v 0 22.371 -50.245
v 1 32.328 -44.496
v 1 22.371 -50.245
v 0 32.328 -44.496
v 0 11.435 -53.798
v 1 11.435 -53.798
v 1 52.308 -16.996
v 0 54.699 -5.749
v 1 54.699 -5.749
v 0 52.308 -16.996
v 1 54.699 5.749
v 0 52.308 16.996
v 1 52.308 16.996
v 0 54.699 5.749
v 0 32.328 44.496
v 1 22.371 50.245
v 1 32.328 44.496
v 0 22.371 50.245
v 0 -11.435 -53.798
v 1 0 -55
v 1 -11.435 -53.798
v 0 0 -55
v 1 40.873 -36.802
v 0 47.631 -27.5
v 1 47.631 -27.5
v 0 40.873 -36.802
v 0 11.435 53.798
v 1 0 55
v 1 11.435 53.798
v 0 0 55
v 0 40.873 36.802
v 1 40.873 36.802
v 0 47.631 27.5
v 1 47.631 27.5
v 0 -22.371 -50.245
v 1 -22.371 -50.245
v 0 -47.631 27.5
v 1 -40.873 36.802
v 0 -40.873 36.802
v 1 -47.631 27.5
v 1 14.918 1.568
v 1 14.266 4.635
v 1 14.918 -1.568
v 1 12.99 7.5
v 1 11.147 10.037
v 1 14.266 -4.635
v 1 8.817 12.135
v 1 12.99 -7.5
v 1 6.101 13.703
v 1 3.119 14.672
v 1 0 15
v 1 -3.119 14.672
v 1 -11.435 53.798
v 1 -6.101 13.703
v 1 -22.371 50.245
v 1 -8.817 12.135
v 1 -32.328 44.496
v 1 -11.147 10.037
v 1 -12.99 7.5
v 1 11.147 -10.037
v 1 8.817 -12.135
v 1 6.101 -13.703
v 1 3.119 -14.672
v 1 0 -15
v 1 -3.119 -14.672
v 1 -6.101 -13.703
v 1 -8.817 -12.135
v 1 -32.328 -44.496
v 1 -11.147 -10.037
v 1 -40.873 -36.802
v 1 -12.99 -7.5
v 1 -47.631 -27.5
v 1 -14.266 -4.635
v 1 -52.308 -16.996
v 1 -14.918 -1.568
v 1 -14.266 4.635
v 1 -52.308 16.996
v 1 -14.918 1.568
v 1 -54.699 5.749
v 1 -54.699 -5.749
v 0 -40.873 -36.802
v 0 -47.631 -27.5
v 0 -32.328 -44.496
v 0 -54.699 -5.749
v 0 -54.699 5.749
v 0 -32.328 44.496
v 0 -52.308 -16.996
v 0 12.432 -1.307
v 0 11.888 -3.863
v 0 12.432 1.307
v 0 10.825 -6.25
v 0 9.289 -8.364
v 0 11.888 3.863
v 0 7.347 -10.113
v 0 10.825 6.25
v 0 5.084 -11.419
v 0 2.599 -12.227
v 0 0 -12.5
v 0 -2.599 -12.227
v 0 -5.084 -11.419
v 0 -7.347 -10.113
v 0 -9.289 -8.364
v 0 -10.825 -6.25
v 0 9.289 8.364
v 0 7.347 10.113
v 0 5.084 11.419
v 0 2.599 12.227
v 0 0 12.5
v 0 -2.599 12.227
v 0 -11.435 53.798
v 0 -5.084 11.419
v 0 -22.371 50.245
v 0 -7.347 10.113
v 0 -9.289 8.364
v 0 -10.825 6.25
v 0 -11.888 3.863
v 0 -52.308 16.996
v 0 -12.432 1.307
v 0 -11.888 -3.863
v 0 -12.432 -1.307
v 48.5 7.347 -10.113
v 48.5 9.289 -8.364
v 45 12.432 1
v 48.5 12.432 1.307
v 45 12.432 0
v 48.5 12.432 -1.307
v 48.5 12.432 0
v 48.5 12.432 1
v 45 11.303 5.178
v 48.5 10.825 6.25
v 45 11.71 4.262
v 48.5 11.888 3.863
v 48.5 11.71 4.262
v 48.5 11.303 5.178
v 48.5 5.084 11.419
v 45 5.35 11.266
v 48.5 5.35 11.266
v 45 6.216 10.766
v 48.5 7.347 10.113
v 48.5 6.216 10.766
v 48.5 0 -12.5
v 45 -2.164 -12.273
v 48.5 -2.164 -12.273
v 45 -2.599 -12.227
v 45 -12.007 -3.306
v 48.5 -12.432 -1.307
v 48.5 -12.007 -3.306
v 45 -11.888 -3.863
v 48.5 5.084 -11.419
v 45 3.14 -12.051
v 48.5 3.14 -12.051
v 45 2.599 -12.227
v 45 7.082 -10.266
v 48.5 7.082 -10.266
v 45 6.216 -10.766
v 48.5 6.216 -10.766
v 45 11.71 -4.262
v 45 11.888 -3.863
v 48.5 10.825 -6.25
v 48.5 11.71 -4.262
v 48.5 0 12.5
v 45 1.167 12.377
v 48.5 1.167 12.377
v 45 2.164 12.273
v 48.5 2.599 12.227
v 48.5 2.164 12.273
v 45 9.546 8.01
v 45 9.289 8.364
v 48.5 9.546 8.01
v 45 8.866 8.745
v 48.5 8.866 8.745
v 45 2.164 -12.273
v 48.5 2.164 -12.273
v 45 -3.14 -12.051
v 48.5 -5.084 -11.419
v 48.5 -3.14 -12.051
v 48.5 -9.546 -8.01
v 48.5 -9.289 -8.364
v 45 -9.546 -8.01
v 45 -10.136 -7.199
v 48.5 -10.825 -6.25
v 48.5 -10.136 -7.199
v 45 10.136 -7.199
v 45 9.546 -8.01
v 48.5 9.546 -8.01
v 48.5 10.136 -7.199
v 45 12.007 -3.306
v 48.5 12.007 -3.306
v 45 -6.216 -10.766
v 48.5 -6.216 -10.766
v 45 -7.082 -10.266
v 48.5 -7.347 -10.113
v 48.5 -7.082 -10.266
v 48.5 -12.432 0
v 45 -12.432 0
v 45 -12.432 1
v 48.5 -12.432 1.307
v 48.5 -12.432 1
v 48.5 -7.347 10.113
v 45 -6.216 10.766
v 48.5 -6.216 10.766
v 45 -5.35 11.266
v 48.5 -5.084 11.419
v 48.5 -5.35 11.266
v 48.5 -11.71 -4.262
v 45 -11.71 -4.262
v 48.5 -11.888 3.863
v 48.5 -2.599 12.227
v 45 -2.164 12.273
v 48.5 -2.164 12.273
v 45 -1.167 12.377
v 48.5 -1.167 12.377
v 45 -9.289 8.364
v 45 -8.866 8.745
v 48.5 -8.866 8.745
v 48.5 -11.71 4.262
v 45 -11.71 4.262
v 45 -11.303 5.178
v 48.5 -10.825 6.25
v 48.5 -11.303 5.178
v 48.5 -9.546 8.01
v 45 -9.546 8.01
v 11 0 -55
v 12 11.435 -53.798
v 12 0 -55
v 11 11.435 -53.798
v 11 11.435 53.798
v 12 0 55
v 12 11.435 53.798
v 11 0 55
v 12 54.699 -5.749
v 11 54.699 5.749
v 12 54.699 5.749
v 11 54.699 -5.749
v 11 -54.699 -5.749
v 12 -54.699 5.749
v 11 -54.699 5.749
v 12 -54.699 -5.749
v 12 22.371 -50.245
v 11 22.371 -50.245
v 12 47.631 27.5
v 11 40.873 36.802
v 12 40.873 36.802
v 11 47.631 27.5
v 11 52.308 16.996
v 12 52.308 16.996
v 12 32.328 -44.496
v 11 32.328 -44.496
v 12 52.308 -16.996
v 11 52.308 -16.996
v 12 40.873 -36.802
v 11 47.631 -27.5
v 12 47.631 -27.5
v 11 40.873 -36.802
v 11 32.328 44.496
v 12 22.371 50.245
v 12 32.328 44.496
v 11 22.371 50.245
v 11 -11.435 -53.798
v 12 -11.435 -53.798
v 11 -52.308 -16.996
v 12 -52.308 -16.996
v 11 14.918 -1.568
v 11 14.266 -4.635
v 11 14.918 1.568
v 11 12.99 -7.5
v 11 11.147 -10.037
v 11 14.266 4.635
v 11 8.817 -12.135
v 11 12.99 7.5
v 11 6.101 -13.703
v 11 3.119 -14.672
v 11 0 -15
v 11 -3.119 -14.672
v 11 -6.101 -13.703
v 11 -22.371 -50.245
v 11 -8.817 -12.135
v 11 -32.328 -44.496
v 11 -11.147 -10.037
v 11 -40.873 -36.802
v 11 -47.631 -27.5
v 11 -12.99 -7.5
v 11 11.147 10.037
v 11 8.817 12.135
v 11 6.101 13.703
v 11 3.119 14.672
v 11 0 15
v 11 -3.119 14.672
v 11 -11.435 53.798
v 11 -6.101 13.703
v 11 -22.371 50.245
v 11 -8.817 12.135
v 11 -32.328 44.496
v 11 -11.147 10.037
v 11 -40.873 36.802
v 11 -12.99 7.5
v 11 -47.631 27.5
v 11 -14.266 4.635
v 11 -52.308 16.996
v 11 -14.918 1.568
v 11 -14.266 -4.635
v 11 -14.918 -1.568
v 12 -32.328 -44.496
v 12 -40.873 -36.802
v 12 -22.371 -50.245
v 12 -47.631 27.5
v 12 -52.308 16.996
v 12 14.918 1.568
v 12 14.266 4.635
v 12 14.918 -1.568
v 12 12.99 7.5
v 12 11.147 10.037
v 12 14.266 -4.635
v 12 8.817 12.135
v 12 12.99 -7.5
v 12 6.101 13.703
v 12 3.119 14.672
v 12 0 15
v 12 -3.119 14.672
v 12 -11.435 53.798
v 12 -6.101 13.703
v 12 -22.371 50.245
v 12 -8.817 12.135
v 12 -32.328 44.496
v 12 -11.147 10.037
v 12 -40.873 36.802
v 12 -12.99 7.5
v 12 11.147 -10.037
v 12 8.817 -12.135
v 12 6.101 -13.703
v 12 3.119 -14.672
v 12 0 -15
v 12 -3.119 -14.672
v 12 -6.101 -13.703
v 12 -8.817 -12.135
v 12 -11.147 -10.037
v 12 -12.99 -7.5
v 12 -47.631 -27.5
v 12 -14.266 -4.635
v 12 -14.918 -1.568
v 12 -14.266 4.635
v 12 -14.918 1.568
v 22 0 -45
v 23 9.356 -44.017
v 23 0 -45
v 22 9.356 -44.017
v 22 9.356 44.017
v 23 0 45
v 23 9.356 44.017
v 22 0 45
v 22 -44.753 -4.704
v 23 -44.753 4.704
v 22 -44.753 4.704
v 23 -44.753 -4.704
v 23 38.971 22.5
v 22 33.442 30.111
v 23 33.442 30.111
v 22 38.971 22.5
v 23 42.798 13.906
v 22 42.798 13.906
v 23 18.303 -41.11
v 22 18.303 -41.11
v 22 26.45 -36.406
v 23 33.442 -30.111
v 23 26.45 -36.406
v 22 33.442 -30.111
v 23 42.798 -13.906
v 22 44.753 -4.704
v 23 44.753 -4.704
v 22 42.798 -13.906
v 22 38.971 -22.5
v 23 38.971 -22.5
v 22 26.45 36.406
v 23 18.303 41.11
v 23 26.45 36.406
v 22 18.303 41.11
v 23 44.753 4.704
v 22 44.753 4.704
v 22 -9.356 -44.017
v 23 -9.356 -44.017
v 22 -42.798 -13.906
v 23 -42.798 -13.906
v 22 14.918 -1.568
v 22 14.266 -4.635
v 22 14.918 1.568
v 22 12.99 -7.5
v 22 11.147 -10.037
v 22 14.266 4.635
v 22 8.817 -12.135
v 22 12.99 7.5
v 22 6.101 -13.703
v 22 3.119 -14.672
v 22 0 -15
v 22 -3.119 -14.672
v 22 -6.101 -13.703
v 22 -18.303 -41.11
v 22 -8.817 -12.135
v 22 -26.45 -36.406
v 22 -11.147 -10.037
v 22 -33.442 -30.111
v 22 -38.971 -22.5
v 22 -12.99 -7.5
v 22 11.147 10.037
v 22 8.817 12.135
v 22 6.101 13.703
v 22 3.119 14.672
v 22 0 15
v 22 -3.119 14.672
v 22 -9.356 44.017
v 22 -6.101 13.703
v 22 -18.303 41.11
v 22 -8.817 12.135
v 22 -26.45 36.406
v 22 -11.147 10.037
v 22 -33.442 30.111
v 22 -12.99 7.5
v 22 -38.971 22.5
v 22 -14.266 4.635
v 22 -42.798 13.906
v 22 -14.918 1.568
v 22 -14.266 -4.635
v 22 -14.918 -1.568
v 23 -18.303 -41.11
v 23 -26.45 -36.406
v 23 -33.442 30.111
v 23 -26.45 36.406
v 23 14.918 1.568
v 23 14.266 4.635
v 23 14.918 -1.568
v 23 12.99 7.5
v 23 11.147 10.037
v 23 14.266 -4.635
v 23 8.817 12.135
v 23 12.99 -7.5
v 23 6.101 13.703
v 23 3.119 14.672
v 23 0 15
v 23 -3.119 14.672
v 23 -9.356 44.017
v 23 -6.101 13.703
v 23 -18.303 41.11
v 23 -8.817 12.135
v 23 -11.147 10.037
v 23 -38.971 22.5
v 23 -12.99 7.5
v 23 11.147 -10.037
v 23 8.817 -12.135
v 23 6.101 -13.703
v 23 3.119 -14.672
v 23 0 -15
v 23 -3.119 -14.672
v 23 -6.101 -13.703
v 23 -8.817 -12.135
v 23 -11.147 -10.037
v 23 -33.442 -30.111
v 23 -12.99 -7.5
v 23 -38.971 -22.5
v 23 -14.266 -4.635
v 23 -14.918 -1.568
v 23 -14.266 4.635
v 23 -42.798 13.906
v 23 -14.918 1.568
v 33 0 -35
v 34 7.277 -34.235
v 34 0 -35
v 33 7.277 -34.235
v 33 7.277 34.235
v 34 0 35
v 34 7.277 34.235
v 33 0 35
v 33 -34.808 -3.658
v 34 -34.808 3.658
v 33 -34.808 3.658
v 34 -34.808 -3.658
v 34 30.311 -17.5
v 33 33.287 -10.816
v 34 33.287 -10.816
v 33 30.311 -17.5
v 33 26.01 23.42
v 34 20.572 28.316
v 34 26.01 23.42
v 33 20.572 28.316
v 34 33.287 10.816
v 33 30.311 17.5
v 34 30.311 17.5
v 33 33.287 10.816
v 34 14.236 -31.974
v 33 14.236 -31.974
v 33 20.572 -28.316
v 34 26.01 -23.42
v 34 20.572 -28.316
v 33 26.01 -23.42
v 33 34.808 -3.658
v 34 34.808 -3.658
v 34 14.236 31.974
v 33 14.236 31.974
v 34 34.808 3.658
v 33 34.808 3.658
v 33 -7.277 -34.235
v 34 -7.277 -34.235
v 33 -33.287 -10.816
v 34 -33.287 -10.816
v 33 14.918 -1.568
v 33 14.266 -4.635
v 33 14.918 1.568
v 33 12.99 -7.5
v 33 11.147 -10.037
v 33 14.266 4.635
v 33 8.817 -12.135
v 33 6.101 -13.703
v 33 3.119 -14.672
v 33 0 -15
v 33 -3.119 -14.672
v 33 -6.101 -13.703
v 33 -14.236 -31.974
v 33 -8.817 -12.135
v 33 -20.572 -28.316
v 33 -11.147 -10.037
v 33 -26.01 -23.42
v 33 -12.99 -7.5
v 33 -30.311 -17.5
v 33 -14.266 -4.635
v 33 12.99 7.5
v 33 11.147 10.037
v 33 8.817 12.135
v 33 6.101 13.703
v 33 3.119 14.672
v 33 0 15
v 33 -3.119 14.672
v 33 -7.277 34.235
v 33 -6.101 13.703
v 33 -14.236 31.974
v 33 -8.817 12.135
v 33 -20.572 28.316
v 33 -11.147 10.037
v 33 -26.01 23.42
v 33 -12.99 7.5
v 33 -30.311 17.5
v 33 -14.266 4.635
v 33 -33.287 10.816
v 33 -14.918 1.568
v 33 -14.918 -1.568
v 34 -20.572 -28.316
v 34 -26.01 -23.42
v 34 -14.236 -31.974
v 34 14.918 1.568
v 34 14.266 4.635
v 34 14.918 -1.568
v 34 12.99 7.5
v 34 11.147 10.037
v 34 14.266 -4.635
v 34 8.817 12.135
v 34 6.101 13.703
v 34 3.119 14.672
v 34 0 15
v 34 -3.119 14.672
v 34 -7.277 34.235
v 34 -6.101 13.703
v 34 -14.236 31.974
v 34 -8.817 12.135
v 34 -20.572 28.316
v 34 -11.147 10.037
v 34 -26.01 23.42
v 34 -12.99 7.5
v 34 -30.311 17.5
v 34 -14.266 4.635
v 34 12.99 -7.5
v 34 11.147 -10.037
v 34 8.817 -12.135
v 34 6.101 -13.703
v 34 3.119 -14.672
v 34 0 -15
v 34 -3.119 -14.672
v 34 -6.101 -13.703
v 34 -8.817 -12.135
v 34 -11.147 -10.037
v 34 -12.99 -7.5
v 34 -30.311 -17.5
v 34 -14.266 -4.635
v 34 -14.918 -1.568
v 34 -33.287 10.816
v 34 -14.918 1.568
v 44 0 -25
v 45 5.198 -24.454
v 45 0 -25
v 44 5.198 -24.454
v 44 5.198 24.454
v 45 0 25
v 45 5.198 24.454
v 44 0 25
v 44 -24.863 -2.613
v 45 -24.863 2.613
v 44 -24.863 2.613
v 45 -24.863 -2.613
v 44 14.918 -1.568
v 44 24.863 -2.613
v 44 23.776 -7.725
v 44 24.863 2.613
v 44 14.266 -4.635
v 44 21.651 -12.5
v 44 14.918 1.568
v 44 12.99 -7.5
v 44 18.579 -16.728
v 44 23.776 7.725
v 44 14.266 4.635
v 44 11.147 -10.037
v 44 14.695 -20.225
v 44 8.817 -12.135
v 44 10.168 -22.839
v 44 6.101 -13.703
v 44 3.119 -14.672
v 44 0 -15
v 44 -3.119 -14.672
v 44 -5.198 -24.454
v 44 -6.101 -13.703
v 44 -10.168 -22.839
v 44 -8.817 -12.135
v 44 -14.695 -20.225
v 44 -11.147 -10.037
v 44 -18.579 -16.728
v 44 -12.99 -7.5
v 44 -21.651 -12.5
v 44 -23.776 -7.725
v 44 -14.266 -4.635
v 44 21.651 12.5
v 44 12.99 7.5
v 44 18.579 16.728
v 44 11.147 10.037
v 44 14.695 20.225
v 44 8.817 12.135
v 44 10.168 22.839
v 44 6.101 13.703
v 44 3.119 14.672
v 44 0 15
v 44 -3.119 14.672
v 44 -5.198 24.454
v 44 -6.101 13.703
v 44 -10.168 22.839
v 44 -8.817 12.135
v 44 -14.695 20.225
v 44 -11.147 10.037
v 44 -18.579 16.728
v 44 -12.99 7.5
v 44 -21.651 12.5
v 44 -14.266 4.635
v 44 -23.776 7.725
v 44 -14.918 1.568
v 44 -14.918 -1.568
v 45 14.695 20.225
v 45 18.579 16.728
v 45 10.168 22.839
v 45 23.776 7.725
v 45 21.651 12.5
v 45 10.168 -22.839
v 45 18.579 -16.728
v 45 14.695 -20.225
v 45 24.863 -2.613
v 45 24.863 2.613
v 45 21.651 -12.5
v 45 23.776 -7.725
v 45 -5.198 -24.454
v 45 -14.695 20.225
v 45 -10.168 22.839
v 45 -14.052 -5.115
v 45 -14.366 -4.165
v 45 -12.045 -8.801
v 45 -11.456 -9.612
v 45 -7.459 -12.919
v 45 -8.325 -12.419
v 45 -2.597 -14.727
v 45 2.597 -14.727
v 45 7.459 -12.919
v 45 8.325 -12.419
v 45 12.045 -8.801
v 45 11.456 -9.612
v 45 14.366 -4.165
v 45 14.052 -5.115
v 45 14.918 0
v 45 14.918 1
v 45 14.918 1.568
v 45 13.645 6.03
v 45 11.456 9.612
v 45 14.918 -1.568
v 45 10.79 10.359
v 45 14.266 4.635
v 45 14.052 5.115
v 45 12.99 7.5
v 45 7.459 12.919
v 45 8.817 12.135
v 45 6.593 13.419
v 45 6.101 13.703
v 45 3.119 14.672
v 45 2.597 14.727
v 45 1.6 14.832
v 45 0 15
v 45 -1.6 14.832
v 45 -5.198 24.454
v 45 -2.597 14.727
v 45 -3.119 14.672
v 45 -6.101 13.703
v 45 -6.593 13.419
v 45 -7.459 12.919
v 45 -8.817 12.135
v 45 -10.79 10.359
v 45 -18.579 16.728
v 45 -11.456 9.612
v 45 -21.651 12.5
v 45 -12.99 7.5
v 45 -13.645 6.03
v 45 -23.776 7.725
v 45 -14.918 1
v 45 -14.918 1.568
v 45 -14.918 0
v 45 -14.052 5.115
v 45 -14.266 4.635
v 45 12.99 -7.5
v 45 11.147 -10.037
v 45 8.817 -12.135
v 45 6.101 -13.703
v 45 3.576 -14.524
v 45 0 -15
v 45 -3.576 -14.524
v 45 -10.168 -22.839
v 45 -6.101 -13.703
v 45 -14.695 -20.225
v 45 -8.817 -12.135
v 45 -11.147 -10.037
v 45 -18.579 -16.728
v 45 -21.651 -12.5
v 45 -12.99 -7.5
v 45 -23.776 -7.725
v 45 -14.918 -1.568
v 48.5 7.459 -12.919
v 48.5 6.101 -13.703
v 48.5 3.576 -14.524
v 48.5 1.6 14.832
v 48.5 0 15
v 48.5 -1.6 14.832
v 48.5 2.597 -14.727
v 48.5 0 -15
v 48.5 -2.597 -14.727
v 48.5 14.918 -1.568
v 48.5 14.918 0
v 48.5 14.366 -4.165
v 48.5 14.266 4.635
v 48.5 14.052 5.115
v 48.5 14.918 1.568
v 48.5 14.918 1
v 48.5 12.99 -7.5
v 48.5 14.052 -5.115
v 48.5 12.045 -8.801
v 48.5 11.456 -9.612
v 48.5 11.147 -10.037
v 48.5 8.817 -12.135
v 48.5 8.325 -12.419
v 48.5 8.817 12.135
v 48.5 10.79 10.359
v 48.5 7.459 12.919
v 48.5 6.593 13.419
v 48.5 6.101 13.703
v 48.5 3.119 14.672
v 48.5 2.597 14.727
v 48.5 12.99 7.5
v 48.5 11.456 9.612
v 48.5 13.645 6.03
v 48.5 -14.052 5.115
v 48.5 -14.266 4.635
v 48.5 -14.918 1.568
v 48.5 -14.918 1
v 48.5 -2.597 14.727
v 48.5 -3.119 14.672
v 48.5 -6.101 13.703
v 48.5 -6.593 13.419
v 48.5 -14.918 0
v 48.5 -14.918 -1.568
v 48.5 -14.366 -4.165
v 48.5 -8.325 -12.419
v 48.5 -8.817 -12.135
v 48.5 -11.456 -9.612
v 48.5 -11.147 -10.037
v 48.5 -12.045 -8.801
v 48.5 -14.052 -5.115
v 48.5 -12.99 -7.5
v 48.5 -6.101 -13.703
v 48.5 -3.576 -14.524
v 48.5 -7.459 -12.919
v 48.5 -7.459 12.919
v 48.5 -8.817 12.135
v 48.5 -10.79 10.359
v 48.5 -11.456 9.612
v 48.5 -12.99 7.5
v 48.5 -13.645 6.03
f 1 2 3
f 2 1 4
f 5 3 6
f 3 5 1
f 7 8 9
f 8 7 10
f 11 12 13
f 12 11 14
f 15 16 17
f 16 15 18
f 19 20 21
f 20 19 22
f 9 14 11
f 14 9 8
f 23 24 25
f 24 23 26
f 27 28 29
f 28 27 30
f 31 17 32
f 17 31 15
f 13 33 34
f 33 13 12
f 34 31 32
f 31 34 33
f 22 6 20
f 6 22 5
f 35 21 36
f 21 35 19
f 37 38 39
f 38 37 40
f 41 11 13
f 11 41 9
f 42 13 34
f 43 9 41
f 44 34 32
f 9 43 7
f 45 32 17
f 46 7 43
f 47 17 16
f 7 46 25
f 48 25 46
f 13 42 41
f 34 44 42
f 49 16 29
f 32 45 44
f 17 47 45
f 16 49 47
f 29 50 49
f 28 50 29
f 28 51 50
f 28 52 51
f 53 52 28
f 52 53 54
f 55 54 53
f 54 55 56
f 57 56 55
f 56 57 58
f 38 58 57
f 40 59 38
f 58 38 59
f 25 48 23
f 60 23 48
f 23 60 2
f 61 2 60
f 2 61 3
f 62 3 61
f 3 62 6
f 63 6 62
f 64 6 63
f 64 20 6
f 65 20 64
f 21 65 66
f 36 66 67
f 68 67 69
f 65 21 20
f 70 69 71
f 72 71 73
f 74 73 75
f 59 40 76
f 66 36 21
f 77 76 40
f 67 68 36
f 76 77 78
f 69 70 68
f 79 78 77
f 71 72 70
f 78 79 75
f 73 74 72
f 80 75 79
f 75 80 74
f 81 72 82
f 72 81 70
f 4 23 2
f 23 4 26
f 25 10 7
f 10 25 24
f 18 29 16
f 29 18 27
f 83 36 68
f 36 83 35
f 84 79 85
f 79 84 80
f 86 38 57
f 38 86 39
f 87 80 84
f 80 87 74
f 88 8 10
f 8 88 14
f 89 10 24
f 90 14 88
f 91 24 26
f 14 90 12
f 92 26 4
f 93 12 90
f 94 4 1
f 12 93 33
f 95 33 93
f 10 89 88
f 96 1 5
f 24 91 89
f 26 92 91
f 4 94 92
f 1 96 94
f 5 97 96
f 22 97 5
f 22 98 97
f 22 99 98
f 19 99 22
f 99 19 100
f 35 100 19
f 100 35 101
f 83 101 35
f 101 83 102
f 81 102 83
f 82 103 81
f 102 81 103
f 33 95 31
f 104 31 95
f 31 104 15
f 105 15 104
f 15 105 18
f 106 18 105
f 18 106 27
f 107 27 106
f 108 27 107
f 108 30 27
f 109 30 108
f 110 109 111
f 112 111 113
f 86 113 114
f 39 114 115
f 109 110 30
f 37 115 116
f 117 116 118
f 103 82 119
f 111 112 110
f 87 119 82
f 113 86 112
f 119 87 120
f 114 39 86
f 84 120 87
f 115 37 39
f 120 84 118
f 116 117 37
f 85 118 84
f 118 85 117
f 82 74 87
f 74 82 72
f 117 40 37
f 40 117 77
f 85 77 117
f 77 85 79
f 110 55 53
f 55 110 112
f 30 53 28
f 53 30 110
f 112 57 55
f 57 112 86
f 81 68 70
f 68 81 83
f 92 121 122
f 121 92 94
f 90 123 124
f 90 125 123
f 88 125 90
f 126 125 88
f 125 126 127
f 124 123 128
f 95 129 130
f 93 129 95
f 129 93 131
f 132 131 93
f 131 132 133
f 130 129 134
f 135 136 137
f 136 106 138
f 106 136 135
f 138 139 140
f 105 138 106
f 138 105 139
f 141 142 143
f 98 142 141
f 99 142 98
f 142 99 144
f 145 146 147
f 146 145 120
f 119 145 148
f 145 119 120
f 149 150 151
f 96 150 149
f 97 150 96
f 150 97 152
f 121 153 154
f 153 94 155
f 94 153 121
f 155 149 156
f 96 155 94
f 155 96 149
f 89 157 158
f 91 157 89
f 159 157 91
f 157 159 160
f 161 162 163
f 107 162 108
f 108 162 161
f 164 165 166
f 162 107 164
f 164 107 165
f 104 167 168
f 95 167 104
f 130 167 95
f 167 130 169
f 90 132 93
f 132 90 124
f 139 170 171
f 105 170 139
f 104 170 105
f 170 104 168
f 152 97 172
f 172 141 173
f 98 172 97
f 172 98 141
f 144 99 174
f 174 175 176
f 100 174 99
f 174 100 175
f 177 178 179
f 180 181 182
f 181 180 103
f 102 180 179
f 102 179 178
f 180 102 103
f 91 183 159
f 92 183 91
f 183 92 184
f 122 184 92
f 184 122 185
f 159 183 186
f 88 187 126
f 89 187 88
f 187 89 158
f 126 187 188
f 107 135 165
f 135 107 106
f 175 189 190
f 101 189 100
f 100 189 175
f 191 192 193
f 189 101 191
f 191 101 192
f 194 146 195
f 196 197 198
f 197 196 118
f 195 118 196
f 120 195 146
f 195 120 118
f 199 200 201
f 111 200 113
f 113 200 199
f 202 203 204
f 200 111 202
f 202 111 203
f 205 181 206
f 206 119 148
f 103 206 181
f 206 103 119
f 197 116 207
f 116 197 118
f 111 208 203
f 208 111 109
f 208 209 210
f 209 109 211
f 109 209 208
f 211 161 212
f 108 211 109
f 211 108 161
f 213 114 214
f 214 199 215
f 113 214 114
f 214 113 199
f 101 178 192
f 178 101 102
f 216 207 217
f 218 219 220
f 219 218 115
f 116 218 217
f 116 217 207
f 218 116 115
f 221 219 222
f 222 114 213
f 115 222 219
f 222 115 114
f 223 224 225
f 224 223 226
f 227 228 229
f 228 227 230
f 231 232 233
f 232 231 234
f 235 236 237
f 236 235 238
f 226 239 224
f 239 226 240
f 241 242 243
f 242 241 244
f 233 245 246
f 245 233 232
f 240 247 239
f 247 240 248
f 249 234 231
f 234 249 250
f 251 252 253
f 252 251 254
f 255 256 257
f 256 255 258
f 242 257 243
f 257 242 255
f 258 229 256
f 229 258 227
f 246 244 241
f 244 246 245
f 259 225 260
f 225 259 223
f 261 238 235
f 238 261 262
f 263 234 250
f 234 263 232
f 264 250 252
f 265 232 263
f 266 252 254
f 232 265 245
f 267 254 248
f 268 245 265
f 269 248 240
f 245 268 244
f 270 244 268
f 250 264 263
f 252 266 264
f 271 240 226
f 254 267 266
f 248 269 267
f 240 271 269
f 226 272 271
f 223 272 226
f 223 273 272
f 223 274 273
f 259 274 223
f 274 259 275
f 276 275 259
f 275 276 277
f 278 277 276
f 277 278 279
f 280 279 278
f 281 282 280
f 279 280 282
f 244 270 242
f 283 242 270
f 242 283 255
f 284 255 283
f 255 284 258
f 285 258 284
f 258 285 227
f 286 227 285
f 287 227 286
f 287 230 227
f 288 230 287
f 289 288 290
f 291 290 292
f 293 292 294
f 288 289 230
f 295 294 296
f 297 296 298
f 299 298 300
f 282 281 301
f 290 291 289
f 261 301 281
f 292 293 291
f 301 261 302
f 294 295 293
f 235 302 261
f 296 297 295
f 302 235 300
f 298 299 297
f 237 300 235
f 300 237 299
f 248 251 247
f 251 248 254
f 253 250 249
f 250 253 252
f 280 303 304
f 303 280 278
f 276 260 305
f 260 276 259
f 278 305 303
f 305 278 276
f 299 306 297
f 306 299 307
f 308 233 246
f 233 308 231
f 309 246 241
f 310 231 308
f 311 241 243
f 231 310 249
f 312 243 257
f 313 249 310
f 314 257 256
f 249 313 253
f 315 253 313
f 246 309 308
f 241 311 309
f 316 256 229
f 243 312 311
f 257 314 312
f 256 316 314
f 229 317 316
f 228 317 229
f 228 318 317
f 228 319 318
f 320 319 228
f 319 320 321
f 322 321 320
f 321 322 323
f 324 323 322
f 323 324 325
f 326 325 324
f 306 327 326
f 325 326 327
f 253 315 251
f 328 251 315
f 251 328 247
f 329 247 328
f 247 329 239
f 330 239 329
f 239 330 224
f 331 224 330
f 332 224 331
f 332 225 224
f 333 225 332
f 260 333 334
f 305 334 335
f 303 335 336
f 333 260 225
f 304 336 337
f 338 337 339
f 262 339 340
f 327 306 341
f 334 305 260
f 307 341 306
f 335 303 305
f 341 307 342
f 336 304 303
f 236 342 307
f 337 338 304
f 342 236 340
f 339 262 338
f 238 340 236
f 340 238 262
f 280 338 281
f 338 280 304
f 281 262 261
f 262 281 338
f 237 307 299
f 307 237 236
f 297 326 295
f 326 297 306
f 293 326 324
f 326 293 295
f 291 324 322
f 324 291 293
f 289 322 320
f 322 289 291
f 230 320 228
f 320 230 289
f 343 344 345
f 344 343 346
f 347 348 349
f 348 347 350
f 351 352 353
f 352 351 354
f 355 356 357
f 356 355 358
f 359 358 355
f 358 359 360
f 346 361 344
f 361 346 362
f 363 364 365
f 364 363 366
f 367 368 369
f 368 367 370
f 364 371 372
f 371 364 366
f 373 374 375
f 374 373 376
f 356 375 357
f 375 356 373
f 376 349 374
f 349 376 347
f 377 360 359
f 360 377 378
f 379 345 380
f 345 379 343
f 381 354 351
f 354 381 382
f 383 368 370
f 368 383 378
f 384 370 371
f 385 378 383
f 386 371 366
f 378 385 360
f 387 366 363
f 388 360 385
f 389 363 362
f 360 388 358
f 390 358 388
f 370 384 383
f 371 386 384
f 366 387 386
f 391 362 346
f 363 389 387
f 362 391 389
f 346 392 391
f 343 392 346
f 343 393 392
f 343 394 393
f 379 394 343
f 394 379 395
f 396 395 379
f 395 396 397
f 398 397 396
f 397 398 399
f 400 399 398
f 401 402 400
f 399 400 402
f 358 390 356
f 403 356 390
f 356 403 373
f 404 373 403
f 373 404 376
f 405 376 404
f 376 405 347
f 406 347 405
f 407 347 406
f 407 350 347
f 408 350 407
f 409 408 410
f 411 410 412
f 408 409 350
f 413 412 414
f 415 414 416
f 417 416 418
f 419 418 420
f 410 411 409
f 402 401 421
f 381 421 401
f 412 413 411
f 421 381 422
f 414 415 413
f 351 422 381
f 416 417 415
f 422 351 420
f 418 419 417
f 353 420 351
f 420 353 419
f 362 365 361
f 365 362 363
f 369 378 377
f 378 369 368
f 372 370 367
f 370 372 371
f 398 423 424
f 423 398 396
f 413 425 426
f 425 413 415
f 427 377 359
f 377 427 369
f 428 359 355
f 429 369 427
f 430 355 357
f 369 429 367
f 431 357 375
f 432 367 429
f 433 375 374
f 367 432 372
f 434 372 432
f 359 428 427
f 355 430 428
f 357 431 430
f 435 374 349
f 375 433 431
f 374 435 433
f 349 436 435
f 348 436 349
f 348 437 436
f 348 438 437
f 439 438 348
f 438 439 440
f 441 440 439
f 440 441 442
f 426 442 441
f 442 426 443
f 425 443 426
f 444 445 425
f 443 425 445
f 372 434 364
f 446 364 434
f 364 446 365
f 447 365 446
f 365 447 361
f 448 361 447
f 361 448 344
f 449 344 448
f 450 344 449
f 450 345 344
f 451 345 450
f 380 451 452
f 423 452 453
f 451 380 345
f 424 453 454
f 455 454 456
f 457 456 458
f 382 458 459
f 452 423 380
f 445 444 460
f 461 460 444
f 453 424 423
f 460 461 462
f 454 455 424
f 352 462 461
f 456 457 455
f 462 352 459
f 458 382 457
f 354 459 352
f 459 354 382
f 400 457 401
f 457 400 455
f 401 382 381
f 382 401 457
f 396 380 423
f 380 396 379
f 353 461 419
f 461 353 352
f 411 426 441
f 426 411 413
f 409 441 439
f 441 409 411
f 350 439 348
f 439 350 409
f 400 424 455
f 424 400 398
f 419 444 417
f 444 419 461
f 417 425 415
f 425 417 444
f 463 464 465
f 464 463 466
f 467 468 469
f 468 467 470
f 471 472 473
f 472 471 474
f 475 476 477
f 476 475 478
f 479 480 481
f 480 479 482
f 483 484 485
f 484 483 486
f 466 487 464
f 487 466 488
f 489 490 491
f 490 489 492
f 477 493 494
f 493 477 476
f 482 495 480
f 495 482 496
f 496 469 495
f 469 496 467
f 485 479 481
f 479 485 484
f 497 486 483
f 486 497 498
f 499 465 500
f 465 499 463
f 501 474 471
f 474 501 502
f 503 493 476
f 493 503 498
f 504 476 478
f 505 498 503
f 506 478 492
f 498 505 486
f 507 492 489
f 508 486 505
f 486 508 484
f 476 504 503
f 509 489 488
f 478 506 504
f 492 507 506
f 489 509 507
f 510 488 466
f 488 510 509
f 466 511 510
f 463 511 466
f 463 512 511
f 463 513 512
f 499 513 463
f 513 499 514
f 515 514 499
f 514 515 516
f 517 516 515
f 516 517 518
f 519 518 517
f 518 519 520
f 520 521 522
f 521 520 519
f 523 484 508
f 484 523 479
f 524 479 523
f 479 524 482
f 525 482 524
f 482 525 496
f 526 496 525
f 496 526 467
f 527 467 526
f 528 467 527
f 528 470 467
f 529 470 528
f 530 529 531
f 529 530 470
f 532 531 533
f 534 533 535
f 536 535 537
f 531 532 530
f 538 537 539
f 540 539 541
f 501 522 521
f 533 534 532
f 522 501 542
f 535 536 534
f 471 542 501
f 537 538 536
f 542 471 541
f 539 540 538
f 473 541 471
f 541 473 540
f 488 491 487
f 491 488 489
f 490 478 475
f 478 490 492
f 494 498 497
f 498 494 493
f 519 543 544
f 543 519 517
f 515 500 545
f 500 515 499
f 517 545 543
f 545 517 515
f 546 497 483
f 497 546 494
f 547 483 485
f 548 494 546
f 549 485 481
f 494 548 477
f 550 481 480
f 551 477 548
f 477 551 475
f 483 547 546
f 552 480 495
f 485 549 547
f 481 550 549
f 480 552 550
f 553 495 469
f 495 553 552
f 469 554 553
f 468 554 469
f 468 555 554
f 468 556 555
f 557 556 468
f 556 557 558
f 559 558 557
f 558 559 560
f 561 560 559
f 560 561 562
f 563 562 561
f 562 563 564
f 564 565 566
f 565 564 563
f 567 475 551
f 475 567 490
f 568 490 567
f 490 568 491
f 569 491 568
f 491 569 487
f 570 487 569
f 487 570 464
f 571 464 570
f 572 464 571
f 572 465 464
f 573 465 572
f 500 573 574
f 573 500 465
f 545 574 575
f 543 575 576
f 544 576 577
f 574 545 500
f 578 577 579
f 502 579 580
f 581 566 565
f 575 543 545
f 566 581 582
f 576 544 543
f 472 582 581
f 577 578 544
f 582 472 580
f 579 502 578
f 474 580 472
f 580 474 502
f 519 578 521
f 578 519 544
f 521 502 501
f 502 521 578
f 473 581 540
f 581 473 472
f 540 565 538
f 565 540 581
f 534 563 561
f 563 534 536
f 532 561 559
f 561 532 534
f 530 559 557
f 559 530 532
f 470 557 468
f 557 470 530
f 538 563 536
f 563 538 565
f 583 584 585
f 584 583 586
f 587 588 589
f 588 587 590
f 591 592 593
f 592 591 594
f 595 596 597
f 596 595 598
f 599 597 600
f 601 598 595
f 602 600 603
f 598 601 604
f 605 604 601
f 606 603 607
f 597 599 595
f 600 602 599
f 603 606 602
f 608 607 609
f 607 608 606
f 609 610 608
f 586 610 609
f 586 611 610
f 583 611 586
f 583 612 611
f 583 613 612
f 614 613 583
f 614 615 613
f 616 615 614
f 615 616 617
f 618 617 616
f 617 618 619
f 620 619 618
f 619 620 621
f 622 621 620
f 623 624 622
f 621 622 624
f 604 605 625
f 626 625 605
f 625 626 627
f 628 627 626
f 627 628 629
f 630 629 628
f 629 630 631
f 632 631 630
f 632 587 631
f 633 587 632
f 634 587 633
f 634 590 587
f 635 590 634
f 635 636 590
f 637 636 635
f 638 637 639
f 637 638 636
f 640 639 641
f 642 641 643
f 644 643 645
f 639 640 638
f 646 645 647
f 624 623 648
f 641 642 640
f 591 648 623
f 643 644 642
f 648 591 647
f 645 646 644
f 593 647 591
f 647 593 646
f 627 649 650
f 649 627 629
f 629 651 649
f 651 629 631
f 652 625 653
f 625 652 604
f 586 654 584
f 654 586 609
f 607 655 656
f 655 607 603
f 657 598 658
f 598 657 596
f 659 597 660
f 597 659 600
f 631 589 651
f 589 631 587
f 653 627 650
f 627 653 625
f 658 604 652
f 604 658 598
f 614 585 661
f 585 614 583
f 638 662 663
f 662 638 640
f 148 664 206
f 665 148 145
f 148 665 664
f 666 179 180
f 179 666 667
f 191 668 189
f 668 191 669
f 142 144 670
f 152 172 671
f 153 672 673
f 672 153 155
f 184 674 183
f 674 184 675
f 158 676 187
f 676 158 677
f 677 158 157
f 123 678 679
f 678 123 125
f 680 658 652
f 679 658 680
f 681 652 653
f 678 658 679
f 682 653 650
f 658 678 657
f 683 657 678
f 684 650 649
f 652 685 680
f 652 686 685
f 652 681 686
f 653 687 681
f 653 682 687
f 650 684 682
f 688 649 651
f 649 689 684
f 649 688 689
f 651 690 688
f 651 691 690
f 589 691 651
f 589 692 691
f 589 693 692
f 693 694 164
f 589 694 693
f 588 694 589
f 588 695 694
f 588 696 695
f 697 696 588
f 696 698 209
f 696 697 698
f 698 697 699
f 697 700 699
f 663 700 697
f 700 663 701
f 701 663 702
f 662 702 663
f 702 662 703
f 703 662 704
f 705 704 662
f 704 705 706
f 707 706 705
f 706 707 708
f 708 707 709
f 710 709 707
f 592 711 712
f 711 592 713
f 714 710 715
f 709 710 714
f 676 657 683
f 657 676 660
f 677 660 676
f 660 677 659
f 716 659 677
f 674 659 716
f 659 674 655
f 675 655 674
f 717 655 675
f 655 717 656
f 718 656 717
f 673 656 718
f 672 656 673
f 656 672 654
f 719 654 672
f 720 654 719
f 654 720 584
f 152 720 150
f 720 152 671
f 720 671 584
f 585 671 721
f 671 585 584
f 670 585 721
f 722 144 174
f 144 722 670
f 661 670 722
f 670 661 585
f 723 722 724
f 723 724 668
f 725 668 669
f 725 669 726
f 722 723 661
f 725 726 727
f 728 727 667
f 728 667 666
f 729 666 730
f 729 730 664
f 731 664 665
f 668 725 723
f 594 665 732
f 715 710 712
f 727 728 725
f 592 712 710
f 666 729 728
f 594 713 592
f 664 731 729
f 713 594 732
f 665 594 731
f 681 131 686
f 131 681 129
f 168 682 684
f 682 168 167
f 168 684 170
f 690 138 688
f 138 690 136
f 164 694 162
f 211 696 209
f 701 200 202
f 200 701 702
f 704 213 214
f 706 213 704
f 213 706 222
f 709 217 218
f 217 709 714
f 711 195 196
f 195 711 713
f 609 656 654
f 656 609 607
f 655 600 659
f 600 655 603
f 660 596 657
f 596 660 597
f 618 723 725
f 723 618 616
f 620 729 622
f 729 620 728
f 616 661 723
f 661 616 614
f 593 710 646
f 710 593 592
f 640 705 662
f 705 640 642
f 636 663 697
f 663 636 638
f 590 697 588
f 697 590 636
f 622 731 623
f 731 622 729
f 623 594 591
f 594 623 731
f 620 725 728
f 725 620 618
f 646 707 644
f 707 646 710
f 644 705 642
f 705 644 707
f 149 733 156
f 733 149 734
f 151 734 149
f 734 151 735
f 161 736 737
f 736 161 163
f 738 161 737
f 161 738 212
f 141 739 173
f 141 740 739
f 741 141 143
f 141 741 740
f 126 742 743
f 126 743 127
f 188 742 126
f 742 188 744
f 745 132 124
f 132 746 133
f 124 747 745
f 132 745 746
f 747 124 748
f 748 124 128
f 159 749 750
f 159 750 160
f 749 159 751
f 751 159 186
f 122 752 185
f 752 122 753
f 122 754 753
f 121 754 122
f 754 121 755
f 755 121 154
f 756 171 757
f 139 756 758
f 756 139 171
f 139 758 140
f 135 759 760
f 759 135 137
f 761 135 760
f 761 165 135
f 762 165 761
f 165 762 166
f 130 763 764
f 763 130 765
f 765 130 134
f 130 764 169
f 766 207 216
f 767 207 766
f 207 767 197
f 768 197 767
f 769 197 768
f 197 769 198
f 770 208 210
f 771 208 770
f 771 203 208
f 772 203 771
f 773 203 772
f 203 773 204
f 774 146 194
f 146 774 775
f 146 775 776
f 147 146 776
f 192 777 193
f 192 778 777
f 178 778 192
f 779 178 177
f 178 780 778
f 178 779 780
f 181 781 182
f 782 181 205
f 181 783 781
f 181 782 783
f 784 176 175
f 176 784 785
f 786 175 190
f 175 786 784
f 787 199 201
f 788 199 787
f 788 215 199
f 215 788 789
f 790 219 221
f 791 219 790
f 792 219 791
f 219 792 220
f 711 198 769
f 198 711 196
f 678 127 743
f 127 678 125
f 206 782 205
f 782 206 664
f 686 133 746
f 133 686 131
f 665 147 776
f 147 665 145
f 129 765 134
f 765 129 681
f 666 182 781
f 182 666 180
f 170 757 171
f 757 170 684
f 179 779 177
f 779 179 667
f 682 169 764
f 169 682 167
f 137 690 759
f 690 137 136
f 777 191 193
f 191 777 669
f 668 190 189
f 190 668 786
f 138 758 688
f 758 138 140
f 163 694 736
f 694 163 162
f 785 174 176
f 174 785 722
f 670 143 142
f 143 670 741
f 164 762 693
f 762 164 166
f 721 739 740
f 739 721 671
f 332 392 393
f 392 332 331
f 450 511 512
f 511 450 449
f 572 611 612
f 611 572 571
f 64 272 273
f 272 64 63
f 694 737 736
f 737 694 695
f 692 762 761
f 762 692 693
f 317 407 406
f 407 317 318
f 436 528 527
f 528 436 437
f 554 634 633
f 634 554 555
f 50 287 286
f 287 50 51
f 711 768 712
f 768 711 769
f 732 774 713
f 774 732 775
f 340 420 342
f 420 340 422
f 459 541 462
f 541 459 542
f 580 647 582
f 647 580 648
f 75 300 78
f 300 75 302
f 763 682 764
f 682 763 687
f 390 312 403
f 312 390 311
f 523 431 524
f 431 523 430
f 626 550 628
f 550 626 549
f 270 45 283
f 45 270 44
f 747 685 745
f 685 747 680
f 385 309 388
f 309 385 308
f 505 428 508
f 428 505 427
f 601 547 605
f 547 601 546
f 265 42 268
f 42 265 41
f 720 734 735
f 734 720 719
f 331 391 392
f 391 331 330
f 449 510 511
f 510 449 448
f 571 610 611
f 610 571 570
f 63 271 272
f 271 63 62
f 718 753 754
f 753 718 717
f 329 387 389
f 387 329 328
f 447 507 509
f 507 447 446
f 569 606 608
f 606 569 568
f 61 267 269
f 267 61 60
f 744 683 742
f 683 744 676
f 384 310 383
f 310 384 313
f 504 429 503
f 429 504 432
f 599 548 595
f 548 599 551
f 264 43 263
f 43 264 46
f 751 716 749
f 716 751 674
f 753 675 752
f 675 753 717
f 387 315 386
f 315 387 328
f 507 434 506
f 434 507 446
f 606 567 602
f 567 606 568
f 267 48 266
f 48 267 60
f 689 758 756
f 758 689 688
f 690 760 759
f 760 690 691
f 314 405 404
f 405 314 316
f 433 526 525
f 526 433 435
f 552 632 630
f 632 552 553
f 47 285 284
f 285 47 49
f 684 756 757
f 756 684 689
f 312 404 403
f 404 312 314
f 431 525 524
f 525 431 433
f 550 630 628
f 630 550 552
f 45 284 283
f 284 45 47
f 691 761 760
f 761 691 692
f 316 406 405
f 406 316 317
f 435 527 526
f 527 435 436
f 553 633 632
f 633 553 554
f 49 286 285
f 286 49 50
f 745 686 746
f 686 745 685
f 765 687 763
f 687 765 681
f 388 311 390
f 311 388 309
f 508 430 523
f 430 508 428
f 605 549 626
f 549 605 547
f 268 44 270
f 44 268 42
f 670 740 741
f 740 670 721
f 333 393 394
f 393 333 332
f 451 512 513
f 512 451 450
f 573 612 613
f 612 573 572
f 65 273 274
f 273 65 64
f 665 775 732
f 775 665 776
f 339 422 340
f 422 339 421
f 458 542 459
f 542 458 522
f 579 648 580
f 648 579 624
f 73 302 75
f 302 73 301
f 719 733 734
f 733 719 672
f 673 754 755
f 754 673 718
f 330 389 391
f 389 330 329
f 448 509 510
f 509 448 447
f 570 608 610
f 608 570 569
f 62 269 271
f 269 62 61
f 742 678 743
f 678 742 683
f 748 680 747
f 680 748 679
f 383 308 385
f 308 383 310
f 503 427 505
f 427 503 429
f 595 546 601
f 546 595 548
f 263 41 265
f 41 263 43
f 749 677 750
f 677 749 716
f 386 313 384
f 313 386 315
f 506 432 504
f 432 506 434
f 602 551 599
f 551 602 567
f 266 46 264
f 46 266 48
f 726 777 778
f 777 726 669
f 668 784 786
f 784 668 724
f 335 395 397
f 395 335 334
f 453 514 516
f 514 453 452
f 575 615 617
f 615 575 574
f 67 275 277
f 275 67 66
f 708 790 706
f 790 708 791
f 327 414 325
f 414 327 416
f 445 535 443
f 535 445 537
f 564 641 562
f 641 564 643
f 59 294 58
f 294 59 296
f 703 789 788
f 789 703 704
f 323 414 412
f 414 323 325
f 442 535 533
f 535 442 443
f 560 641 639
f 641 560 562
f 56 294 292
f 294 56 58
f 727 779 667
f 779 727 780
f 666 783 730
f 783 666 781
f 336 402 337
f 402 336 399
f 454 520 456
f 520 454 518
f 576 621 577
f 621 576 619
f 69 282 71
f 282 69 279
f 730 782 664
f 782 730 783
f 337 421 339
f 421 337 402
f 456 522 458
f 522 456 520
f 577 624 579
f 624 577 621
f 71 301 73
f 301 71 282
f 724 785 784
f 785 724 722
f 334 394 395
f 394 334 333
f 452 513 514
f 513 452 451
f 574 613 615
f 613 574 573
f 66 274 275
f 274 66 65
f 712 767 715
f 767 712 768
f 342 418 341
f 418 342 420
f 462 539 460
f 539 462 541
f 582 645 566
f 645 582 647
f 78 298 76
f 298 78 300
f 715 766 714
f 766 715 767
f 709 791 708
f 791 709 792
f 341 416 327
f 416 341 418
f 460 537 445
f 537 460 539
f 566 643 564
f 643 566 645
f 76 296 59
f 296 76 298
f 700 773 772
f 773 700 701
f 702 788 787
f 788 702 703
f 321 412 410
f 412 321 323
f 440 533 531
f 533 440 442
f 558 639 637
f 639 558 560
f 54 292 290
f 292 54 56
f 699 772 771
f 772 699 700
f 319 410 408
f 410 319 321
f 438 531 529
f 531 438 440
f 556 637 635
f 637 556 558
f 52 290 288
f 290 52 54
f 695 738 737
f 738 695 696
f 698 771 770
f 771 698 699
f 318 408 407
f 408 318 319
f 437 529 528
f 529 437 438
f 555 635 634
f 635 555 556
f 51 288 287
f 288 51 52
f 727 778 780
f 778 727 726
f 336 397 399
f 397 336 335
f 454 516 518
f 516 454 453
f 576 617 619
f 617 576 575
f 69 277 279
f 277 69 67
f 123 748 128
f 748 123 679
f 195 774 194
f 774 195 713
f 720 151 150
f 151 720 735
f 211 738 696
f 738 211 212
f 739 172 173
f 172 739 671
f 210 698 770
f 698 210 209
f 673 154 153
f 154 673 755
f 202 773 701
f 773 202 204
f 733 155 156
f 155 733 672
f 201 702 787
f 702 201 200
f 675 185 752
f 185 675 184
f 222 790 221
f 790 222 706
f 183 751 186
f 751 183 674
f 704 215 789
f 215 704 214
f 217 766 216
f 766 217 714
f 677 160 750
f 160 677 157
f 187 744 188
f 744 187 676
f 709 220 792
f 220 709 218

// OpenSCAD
//Bobina
{
//Separação de r = 55
difference(){
rotate([0,90,0]) cylinder(h=1, r1=55,r2=55);
    rotate([0,90,0]) #cylinder(h=48.5, r1=12.5,r2=12.5);
}


//separação de r = 55
difference(){
rotate([0,90,0]) translate([0,0,11])cylinder(h=1, r1=55,r2=55);
    rotate([0,90,0]) #cylinder(h=48.5, r1=12.5,r2=12.5);
}


//Separação de r = 45
difference(){
rotate([0,90,0]) translate([0,0,22])cylinder(h=1, r1=45,r2=45);
    rotate([0,90,0]) #cylinder(h=48.5, r1=12.5,r2=12.5);
}


//Separação de r = 35
difference(){
rotate([0,90,0]) translate([0,0,33])cylinder(h=1, r1=35,r2=35);
    rotate([0,90,0]) #cylinder(h=48.5, r1=12.5,r2=12.5);
}


//Separação de r = 25
difference(){
rotate([0,90,0]) translate([0,0,44])cylinder(h=1, r1=25,r2=25);
    rotate([0,90,0]) #cylinder(h=48.5, r1=12.5,r2=12.5);
}


//Furos
{
difference(){
rotate([0,90,0]) cylinder(h=48.5, r1=15,r2=15);
    rotate([0,90,0]) #cylinder(h=48.5, r1=12.5,r2=12.5);
    #translate([45,-15,0]) cube([3.5,30,1]);
rotate(a=[10,0,0])#translate([45,0,-15]) cube([3.5,1,30]);
    rotate(a=[30,0,0])#translate([45,0,-15]) cube([3.5,1,30]);
    rotate(a=[50,0,0])#translate([45,0,-15]) cube([3.5,1,30]);
    rotate(a=[70,0,0])#translate([45,0,-15]) cube([3.5,1,30]);
    rotate(a=[90,0,0])#translate([45,0,-15]) cube([3.5,1,30]);
  rotate(a=[80,0,0]){
      rotate(a=[10,0,0])#translate([45,0,-15]) cube([3.5,1,30]);
    rotate(a=[30,0,0])#translate([45,0,-15]) cube([3.5,1,30]);
    rotate(a=[50,0,0])#translate([45,0,-15]) cube([3.5,1,30]);
    rotate(a=[70,0,0])#translate([45,0,-15]) cube([3.5,1,30]);
    rotate(a=[90,0,0])#translate([45,0,-15]) cube([3.5,1,30]);
  }
}
}
}
